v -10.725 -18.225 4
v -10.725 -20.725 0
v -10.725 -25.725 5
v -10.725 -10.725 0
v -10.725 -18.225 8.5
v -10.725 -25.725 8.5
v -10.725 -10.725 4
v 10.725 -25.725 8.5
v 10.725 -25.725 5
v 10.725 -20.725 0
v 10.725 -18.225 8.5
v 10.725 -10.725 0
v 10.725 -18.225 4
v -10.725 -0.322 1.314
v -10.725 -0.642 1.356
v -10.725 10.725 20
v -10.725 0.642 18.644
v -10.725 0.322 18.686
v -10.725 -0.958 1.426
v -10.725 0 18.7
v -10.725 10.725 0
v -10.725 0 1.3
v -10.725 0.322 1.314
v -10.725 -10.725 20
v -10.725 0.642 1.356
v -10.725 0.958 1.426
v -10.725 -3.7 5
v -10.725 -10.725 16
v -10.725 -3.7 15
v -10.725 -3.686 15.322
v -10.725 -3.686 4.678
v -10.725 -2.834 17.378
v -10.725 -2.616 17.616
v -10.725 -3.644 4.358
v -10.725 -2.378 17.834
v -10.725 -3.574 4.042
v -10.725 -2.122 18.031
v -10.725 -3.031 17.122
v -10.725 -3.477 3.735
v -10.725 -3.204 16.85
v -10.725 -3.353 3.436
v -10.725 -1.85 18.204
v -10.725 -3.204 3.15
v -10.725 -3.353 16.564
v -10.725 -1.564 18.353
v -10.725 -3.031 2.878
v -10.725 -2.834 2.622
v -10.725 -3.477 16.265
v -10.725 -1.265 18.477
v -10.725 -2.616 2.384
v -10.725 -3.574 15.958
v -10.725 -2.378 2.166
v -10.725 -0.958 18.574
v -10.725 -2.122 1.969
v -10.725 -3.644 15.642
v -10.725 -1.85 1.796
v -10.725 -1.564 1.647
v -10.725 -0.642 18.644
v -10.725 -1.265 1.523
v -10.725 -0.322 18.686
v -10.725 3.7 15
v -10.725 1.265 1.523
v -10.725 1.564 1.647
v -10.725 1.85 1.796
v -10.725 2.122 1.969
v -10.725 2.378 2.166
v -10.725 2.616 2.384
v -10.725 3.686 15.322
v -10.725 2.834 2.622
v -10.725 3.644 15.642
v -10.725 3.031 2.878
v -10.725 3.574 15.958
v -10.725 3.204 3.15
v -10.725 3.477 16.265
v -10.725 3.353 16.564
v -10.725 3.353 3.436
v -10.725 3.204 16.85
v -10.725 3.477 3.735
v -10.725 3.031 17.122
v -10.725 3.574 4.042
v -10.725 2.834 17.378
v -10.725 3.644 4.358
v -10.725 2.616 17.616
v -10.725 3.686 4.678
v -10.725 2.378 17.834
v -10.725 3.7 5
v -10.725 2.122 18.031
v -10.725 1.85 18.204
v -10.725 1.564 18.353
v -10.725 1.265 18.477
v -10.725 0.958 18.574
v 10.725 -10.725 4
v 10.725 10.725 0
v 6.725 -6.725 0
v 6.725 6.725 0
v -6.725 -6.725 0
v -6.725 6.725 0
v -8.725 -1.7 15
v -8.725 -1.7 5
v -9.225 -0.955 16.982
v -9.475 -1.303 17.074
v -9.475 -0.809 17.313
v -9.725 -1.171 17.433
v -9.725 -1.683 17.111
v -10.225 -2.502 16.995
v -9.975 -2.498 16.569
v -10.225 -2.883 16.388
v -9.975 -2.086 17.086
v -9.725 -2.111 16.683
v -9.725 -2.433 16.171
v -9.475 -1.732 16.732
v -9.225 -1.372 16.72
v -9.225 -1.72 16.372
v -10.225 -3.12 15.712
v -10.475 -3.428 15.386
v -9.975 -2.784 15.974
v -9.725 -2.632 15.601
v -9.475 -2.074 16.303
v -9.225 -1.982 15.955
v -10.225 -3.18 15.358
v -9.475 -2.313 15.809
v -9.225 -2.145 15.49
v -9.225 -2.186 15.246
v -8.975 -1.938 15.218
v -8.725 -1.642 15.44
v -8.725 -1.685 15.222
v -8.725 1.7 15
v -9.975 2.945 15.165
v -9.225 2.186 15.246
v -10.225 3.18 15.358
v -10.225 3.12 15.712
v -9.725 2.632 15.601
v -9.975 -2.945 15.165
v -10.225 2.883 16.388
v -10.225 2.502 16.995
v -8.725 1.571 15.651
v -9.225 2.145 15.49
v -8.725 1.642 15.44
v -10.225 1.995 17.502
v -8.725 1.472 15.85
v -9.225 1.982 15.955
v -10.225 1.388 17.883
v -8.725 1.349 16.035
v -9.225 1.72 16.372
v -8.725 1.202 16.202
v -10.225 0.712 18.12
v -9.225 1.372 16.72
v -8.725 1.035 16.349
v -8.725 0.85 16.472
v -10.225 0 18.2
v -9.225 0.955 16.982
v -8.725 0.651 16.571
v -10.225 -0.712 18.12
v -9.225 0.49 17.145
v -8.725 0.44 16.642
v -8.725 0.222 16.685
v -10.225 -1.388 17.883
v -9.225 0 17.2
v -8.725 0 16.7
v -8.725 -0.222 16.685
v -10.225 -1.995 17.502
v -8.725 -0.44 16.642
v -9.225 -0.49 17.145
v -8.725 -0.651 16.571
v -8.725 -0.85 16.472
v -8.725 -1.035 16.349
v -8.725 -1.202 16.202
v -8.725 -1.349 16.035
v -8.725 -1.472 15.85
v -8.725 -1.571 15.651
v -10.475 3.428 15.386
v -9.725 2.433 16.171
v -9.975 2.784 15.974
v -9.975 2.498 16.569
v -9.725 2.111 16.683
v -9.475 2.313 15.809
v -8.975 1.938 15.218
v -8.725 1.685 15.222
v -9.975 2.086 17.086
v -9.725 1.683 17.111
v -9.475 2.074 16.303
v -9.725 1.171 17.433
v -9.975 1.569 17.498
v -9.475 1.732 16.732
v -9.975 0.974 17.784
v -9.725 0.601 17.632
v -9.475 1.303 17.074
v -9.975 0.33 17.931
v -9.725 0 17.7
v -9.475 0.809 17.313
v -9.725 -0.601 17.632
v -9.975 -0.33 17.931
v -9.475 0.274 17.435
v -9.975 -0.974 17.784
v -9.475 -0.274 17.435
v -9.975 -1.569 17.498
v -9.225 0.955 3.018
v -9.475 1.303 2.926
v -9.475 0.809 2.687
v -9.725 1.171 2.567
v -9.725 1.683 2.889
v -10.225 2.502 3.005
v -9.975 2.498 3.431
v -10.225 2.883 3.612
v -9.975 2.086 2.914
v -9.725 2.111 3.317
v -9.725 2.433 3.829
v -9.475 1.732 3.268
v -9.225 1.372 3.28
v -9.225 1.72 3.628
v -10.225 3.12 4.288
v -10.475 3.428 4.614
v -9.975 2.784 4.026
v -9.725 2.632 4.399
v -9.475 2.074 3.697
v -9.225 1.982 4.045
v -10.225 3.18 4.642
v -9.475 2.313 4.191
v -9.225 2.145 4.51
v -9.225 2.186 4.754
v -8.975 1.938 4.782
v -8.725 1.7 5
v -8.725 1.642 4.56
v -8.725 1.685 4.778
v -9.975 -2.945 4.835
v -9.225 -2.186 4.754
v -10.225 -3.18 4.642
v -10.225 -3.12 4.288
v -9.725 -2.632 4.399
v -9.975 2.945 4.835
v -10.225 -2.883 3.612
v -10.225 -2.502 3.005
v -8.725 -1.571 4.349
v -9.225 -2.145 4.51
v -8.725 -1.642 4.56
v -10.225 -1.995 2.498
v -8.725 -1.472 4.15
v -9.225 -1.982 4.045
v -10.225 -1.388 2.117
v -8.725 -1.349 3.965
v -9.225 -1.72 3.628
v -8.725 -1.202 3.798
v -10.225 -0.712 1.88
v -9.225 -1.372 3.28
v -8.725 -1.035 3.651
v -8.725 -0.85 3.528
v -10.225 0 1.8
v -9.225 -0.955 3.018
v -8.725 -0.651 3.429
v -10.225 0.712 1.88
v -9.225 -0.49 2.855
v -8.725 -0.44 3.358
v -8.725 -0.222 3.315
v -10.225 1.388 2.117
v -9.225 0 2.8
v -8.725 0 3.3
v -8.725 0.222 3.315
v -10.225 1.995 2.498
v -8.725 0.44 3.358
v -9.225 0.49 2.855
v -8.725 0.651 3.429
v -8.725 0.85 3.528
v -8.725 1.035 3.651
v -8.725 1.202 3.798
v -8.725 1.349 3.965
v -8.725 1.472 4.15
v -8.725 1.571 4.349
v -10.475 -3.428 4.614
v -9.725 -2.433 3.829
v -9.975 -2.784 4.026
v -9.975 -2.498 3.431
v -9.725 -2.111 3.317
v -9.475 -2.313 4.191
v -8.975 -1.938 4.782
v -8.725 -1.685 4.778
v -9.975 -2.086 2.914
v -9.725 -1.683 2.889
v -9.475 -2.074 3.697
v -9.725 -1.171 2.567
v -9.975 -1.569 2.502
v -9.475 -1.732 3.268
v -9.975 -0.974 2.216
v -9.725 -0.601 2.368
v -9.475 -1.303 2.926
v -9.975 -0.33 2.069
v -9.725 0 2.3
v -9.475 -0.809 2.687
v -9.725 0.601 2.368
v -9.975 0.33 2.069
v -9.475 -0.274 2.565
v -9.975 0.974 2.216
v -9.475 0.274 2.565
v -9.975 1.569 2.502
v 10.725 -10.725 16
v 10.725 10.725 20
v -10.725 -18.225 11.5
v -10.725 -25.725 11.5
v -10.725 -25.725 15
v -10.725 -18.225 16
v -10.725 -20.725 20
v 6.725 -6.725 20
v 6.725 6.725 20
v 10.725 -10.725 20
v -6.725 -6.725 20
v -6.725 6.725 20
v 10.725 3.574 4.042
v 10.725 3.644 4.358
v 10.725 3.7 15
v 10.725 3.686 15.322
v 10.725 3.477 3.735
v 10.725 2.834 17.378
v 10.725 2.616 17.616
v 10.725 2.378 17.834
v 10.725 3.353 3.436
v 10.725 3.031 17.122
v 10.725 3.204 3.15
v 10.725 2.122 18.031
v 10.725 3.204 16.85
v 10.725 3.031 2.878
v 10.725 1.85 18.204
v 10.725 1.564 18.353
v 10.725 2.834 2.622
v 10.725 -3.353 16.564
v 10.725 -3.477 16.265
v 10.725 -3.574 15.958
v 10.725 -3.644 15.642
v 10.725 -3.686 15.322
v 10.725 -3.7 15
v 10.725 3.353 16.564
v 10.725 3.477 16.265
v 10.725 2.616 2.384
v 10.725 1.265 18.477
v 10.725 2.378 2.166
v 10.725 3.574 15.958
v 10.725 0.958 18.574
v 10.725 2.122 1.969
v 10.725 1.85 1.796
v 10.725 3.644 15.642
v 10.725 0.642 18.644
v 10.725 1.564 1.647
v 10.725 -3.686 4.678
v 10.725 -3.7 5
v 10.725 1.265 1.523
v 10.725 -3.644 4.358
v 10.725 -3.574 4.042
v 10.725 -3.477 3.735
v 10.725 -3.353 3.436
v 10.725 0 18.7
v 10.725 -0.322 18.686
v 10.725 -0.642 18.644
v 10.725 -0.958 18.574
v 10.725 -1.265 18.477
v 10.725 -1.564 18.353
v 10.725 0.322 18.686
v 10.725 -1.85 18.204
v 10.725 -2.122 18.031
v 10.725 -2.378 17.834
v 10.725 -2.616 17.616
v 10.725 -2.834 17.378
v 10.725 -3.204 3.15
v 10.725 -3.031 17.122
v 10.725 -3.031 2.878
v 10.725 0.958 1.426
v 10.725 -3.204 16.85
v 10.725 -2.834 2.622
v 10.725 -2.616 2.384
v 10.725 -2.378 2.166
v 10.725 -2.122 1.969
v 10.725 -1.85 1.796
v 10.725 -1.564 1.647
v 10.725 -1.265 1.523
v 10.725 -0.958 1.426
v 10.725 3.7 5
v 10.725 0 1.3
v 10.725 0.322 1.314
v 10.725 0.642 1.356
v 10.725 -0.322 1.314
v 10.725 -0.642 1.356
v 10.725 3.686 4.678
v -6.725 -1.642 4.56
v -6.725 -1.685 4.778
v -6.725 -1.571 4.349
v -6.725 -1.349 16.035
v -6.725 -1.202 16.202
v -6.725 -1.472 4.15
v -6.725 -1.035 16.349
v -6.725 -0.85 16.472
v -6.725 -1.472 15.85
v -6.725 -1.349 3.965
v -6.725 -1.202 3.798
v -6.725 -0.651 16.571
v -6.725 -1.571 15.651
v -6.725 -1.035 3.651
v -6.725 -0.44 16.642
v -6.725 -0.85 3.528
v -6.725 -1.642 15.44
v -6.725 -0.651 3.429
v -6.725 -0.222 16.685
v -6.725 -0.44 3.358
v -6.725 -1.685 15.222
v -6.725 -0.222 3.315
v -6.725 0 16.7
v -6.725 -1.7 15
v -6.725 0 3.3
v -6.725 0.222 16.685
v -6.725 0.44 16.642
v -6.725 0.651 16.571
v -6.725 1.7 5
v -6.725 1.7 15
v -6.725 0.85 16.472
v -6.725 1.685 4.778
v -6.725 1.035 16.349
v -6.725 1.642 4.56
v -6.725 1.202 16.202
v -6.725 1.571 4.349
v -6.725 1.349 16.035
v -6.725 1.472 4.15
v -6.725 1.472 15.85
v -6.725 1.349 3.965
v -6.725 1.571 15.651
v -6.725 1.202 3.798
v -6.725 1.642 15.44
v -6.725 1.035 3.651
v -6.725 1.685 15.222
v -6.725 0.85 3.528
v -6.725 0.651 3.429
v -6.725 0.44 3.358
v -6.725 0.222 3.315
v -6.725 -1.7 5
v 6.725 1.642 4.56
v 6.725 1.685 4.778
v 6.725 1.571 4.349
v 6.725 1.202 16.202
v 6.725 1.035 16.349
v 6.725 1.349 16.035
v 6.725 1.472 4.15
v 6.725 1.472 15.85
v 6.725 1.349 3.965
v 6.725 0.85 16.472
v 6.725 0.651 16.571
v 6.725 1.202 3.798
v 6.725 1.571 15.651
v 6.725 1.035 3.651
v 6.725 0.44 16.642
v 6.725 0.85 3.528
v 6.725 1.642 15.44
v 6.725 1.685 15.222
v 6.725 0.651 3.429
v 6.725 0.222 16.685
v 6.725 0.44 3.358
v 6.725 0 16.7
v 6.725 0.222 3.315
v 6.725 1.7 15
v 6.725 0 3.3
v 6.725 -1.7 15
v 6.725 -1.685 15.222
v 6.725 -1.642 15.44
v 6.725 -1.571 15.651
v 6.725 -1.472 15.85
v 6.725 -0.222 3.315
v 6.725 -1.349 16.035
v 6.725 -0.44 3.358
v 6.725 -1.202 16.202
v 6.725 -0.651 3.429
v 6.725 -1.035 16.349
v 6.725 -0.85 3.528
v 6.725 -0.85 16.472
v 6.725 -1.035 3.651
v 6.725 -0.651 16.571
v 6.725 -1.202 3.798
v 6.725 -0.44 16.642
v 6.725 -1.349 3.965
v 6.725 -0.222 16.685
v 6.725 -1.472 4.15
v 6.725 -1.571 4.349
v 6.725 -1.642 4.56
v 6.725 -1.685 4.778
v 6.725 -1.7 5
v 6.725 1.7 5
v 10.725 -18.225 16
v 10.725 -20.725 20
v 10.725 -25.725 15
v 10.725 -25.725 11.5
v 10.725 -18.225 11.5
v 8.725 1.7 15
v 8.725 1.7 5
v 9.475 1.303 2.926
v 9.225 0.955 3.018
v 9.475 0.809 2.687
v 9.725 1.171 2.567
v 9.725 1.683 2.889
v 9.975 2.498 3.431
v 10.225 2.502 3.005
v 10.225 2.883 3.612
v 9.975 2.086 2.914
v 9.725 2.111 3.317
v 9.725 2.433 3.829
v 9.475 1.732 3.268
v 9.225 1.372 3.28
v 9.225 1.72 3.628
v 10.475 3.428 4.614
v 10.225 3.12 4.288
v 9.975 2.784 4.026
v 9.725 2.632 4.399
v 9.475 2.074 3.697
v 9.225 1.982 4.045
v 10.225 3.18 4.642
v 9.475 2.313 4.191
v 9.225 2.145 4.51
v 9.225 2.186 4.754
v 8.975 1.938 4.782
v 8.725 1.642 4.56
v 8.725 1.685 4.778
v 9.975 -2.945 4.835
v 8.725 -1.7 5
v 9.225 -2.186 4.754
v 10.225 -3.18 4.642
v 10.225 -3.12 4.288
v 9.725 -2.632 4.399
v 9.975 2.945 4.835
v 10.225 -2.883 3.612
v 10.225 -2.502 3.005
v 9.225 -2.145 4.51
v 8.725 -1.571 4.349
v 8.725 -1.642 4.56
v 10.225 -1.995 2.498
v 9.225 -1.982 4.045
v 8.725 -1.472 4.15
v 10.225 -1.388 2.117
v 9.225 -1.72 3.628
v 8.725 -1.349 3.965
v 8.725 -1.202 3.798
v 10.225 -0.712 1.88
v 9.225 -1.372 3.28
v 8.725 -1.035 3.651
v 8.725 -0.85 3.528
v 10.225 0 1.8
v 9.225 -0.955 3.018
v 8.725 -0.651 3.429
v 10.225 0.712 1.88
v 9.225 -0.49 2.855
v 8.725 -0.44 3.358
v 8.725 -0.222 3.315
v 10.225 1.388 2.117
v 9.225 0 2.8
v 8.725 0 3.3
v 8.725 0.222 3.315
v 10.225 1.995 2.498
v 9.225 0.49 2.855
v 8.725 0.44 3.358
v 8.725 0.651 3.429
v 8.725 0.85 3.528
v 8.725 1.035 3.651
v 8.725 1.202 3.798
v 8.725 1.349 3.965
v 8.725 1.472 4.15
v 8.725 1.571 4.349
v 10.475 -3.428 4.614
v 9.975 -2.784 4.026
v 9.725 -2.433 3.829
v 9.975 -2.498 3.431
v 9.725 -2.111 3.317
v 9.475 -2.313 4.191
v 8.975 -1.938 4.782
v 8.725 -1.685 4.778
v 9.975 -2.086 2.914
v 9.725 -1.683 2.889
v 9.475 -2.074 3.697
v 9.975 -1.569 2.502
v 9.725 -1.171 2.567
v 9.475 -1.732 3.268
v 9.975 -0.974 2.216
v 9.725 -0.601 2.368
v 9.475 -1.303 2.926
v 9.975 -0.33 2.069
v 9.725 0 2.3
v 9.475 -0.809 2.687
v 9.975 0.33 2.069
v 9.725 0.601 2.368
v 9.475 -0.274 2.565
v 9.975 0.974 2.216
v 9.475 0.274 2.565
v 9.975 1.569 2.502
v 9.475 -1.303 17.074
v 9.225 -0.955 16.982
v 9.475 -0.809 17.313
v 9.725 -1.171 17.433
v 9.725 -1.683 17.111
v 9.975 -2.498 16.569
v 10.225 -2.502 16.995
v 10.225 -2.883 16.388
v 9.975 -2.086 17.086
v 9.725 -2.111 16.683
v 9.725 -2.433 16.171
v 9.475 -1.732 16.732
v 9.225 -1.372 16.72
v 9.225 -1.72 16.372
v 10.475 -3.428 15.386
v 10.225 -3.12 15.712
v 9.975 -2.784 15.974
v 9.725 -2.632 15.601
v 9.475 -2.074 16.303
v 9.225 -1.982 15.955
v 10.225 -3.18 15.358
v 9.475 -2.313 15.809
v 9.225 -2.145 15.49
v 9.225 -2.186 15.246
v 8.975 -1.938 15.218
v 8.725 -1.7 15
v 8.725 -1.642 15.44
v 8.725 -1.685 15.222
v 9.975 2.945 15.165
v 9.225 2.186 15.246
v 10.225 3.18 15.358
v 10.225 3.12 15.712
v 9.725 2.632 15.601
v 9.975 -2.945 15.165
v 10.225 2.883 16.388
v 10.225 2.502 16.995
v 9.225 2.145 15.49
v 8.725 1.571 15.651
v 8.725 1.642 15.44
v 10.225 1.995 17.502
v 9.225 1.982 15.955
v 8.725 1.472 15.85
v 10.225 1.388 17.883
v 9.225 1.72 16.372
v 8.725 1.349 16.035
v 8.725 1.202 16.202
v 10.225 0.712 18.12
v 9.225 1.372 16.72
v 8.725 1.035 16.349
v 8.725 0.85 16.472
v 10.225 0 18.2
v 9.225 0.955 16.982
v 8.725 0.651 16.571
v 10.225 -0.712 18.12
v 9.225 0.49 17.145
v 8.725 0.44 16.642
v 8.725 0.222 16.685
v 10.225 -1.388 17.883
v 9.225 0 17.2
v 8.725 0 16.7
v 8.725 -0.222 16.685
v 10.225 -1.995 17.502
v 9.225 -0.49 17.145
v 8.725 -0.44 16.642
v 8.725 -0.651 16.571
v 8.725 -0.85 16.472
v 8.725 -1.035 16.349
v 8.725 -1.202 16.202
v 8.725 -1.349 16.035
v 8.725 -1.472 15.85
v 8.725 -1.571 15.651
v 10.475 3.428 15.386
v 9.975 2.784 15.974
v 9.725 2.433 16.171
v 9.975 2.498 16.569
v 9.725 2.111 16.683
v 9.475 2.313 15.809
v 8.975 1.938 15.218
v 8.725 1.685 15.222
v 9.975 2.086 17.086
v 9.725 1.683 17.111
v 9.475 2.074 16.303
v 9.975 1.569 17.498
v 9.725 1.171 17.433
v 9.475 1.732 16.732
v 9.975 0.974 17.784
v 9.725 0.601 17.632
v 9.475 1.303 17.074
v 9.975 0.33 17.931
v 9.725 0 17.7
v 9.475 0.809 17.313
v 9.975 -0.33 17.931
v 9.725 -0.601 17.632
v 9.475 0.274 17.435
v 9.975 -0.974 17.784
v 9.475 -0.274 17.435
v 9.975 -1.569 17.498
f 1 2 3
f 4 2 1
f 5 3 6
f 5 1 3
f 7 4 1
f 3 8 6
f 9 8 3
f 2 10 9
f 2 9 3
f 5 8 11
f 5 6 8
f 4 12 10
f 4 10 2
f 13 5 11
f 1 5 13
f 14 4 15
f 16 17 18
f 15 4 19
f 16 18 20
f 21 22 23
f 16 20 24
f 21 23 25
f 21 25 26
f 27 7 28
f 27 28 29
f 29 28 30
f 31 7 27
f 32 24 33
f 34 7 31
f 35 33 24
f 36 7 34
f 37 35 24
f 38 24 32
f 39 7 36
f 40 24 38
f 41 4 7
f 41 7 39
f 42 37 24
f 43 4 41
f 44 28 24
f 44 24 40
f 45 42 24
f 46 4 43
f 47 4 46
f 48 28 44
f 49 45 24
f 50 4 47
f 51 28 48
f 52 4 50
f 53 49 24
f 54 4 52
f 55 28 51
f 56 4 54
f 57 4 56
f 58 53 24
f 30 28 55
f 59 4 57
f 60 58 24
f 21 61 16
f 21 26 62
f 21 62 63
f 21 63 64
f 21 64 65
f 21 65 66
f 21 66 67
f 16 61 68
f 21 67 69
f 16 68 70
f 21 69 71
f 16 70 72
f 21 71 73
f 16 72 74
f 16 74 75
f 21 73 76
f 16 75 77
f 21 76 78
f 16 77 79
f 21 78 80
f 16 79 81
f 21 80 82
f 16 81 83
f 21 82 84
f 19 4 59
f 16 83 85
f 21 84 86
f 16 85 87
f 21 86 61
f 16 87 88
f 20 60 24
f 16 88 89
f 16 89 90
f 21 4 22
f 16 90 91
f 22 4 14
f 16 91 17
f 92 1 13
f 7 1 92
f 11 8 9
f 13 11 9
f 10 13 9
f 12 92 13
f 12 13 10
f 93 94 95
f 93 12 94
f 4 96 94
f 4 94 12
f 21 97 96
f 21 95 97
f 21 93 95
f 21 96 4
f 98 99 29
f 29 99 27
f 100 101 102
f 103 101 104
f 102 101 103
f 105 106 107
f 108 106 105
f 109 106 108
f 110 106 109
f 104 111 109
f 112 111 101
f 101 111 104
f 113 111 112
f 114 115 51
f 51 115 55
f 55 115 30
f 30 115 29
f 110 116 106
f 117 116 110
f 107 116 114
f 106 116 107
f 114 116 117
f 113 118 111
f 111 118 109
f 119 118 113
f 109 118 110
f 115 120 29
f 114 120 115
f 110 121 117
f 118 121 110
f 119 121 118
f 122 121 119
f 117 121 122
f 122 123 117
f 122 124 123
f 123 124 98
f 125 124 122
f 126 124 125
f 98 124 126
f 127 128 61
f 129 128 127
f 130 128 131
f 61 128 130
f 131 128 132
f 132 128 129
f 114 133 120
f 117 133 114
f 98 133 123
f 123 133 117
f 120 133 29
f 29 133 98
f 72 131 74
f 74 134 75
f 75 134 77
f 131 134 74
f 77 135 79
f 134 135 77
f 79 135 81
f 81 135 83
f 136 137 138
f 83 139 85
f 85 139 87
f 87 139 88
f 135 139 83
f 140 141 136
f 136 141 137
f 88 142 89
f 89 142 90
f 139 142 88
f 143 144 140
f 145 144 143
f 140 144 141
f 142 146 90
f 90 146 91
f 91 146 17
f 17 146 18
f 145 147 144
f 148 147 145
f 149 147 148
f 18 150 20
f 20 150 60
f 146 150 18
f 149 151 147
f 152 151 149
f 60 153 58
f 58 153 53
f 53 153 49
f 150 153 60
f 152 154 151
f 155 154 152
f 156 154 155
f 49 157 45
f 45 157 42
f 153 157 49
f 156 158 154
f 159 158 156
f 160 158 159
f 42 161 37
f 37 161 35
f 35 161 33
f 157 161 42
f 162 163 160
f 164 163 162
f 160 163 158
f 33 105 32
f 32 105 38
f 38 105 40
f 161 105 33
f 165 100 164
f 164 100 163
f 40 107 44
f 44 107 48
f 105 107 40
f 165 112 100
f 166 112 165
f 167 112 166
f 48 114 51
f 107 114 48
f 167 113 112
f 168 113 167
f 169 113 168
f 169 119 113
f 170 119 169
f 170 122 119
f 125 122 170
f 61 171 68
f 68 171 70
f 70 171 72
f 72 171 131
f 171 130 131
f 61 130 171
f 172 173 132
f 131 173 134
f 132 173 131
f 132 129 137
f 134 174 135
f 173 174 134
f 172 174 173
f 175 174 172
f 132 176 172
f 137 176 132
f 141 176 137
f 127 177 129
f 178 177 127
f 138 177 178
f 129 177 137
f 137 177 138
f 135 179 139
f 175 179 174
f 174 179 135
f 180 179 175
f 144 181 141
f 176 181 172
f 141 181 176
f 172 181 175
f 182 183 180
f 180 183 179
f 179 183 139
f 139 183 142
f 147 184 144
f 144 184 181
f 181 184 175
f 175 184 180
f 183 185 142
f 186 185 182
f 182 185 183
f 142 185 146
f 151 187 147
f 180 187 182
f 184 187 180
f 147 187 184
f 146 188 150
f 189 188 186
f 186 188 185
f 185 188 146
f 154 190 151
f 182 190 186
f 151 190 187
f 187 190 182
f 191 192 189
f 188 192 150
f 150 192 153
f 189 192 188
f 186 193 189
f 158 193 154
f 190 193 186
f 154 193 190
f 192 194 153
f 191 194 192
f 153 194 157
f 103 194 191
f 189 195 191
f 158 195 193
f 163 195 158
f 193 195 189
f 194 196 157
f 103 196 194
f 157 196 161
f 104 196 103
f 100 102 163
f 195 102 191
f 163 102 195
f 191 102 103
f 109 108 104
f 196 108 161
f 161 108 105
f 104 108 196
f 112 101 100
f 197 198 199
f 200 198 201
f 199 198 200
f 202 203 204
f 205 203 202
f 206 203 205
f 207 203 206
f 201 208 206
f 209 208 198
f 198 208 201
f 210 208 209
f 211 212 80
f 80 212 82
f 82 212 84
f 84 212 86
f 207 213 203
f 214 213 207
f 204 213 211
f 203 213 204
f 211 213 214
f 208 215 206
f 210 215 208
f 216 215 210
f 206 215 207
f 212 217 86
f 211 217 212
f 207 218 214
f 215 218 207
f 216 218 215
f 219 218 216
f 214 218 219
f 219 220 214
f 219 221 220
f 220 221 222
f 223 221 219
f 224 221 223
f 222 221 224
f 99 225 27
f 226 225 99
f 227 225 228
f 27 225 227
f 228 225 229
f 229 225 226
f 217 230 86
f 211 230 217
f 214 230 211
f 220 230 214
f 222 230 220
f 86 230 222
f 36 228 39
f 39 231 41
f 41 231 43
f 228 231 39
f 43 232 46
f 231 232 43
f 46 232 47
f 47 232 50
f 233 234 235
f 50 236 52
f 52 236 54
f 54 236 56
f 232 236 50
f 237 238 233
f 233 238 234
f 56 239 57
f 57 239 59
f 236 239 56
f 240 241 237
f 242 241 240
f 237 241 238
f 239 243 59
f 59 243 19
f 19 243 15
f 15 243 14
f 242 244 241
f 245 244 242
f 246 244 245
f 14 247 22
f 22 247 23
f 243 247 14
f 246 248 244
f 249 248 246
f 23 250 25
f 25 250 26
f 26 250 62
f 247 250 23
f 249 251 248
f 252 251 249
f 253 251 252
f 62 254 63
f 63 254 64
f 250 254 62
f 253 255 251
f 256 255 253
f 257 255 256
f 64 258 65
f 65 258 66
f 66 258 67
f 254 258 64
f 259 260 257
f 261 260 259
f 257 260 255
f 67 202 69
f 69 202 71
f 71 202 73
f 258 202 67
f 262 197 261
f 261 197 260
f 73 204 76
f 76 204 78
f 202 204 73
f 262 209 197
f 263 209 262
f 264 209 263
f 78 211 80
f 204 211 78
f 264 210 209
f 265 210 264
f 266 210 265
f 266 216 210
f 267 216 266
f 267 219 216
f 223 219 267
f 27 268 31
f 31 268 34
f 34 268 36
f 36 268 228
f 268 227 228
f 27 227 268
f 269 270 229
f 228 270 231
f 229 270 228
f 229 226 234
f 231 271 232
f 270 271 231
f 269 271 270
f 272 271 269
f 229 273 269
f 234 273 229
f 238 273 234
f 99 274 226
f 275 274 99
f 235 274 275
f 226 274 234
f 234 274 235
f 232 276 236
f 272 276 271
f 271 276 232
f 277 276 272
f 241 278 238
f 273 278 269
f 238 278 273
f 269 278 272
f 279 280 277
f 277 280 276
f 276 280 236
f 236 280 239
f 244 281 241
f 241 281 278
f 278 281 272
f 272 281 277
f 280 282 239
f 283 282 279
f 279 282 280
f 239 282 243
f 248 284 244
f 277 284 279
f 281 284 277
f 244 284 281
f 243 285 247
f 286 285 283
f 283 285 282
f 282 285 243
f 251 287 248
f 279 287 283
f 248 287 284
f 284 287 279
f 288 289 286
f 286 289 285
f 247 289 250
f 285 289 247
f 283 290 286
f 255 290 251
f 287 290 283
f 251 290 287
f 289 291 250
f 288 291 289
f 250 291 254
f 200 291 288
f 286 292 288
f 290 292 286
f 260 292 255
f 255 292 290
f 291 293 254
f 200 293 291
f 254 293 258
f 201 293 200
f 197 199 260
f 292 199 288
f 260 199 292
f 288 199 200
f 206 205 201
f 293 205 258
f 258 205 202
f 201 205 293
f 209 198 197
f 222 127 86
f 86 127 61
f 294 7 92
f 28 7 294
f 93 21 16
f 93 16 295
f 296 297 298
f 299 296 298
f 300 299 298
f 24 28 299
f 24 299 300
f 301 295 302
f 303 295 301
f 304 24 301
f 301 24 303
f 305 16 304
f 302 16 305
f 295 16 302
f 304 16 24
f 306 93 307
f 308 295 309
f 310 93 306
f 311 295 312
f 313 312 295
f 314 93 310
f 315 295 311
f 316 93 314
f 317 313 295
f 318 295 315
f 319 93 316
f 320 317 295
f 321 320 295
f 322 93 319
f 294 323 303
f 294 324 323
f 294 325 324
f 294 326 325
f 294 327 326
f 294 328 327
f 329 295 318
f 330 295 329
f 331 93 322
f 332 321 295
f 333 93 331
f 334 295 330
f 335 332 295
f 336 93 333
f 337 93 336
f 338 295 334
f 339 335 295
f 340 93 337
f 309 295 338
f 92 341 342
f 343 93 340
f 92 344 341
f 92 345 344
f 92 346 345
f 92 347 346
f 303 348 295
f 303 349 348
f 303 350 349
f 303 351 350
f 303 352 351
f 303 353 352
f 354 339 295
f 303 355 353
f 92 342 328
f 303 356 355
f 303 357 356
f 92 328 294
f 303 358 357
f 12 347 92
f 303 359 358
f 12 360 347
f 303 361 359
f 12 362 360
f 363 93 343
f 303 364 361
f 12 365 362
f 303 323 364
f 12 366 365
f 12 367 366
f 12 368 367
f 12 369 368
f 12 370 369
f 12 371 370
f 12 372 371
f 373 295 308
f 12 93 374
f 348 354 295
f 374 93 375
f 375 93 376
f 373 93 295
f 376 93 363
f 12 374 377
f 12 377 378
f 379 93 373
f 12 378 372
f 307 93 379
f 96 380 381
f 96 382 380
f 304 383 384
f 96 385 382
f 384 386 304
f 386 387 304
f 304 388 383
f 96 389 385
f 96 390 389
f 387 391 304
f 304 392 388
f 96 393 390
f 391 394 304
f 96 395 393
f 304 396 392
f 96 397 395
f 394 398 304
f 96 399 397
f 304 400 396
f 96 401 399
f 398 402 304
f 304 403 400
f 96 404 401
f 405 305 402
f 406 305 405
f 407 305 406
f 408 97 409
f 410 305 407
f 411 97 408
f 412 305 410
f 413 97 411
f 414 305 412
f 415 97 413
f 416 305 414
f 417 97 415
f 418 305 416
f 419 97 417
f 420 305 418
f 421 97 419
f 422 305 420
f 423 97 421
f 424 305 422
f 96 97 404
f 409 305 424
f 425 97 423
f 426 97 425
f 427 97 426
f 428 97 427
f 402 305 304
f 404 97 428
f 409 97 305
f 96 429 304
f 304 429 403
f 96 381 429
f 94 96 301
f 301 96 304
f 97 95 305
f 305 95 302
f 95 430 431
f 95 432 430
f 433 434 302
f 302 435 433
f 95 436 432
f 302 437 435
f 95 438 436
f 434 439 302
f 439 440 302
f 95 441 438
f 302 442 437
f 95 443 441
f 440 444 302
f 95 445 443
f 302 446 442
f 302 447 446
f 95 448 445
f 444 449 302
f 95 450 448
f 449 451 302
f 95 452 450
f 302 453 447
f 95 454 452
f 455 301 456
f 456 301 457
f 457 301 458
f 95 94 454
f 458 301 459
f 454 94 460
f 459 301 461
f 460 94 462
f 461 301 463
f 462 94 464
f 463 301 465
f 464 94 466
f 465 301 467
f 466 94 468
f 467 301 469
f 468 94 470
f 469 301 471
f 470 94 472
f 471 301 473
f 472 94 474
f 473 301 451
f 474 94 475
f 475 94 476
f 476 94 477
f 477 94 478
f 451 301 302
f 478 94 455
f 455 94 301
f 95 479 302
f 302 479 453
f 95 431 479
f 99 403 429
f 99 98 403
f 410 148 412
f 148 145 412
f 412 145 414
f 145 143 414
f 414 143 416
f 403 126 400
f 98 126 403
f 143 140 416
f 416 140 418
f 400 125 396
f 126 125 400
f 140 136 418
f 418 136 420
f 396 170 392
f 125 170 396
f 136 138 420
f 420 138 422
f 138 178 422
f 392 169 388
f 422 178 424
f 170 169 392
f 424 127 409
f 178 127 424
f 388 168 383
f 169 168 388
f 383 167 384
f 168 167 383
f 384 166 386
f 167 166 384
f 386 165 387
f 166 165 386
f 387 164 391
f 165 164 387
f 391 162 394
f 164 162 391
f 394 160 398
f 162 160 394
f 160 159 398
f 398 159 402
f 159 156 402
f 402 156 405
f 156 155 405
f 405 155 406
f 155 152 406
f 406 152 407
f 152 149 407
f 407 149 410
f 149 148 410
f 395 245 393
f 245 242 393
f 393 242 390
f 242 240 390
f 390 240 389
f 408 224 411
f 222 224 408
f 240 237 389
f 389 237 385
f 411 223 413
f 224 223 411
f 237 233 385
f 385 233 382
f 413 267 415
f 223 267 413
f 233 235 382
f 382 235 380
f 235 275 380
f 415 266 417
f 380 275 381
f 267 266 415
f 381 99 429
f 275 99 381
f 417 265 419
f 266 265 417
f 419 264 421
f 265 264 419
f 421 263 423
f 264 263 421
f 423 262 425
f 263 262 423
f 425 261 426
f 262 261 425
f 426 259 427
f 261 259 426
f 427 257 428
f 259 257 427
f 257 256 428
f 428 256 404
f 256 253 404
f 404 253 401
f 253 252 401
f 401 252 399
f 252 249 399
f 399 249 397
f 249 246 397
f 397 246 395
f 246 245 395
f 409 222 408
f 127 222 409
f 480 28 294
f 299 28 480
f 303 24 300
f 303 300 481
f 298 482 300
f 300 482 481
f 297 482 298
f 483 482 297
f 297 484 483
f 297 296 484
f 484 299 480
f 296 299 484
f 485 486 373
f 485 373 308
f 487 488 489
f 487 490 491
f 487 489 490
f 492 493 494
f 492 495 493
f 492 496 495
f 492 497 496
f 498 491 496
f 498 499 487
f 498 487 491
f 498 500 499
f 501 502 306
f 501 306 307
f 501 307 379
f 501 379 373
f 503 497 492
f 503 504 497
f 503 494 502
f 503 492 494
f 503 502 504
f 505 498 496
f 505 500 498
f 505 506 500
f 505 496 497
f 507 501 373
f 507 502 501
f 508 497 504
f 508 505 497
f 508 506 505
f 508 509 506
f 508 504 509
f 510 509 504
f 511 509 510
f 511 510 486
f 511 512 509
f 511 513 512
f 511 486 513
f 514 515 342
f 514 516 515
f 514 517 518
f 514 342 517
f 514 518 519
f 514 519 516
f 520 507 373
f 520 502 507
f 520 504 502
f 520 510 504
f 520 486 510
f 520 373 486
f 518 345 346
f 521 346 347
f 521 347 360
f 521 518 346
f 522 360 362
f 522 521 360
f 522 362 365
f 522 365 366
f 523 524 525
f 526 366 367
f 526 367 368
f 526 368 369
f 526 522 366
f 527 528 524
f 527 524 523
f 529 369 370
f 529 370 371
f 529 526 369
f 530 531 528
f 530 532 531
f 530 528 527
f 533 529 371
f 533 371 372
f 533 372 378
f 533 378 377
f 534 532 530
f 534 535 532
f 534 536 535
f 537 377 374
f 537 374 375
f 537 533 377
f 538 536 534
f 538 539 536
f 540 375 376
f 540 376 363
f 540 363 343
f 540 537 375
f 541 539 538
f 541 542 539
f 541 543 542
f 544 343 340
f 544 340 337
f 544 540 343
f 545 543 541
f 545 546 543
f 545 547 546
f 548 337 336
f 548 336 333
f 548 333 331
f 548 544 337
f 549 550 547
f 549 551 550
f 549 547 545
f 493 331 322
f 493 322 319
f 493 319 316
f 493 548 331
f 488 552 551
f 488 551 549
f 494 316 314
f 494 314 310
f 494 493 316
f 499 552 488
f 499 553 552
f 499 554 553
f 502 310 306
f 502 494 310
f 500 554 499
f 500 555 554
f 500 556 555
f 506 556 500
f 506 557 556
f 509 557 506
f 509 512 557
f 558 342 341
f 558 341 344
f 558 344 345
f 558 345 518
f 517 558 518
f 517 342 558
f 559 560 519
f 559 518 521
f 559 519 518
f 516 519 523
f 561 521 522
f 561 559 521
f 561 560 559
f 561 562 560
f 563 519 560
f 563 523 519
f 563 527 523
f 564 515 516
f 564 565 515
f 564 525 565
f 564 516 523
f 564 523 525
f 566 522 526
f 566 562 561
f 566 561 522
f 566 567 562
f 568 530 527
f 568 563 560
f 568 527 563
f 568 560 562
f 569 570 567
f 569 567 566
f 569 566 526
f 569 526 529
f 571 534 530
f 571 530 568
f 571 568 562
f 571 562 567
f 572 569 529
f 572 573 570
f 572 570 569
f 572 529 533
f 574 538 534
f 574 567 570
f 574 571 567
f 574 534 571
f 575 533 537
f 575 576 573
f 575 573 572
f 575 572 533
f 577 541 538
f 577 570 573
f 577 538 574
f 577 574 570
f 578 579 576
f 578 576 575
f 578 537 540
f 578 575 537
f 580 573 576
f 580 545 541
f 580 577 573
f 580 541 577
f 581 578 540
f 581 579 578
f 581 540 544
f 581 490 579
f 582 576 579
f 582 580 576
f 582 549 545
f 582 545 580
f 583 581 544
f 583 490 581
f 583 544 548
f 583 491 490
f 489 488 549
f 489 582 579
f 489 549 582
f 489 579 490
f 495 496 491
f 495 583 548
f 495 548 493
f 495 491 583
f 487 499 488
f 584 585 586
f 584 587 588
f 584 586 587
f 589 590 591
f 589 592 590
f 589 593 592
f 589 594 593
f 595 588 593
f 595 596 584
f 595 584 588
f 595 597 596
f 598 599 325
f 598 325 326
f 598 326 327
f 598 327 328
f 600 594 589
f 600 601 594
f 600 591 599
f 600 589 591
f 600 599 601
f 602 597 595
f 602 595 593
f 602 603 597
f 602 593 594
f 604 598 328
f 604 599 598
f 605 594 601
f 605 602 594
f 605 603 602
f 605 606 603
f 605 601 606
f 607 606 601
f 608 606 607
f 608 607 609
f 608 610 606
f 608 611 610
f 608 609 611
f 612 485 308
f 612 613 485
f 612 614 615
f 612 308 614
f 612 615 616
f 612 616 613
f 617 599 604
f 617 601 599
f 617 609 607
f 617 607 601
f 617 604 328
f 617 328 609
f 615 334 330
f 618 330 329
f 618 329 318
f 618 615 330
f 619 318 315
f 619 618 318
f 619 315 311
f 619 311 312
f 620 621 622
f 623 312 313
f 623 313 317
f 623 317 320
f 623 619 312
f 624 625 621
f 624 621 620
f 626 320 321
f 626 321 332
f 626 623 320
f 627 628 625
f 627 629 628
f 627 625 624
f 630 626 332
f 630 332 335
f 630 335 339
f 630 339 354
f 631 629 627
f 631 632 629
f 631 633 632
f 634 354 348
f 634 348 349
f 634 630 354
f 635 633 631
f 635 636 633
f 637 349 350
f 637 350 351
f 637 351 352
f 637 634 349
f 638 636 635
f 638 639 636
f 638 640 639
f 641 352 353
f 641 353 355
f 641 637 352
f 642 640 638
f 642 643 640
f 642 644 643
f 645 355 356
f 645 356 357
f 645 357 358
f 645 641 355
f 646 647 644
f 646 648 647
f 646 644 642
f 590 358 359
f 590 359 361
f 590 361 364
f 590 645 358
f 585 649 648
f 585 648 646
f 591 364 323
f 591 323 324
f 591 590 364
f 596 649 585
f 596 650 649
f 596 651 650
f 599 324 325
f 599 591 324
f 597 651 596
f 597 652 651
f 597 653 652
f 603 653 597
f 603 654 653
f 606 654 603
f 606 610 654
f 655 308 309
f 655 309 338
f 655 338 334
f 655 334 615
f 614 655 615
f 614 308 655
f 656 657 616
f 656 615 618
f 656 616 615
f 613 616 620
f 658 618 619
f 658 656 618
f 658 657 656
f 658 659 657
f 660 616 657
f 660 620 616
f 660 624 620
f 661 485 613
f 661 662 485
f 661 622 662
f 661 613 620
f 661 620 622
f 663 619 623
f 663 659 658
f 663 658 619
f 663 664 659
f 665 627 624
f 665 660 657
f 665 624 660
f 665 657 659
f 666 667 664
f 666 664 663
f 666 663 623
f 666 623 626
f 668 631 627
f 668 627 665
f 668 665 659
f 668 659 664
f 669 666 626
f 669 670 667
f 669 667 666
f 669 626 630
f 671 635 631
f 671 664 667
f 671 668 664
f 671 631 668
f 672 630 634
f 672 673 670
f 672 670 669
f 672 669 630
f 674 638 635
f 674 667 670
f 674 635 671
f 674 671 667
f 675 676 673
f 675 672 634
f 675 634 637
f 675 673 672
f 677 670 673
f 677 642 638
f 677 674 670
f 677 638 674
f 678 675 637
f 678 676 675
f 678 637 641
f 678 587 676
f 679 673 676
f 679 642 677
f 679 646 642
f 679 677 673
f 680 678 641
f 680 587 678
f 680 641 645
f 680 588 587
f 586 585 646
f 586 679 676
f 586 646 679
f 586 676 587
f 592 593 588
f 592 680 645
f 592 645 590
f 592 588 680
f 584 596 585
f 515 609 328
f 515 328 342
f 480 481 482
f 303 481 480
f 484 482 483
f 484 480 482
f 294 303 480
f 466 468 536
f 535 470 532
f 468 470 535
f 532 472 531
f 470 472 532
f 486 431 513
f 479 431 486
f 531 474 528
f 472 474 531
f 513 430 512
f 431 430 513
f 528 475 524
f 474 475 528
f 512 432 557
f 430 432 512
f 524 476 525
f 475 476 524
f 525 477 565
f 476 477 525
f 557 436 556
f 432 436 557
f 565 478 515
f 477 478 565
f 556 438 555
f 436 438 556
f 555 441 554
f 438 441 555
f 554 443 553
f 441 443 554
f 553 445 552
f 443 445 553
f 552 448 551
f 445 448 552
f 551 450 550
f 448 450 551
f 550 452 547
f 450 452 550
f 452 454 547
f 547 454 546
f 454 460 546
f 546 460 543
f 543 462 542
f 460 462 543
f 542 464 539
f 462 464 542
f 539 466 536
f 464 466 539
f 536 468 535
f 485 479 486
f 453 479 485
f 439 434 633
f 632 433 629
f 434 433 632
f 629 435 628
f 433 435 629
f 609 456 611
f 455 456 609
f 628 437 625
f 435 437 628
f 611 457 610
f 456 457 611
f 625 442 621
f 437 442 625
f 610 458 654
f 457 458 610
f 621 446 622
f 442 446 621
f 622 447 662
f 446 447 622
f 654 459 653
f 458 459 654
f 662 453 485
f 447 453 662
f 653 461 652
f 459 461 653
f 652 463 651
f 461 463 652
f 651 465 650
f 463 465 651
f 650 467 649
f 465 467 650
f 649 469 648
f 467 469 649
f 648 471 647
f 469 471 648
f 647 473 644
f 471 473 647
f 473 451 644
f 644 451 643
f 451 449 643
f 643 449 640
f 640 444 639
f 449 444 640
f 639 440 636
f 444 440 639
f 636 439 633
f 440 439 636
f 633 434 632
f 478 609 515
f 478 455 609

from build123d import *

# Parameters (mm, degrees)
SKETCH_W        = 21.45
SKETCH_H        = 21.45
SKETCH_W_2      = 13.45
SKETCH_H_2      = 13.45
PAD_DEPTH       = 20
SKETCH001_W     = 21.45
SKETCH001_H     = 20
PAD001_DEPTH    = 15
POCKET_DEPTH    = 21.451
POCKET001_DEPTH = 21.451
CHAMFER_SIZE    = 2
CHAMFER001_SIZE = 5


with BuildPart() as part:
    # Sketch → Pad (new body)
    with BuildSketch(Plane.XY):
        Rectangle(SKETCH_W, SKETCH_H)
        Rectangle(SKETCH_W_2, SKETCH_H_2, mode=Mode.SUBTRACT)
    extrude(amount=PAD_DEPTH)

    # Sketch001 (on Face3 of Pad) → Pad001 (join)
    with BuildSketch(Plane.XZ.offset(10.725)):
        with Locations((0, 10)):
            Rectangle(SKETCH001_W, SKETCH001_H)
    extrude(amount=PAD001_DEPTH)

    # Sketch002 (on Face6 of Pad001) → Pocket (cut, through all)
    with BuildSketch(Plane(origin=(-10.725, 0, 0), x_dir=(0, -1, 0), z_dir=(-1, 0, 0))):
        Polygon((18.225, 11.5), (25.725, 11.5), (25.725, 8.5), (18.225, 8.5), (18.225, 4), (10.725, 4), (10.725, 16), (18.225, 16), align=None)
    extrude(amount=-POCKET_DEPTH, mode=Mode.SUBTRACT)

    # Sketch003 (on Face2 of Pocket) → Pocket001 (cut, through all)
    with BuildSketch(Plane(origin=(-10.725, 0, 0), x_dir=(0, -1, 0), z_dir=(-1, 0, 0))):
        with BuildLine():
            ThreePointArc((1.7, 15), (0, 16.7), (-1.7, 15))
            Line((-1.7, 15), (-1.7, 5))
            ThreePointArc((-1.7, 5), (0, 3.3), (1.7, 5))
            Line((1.7, 15), (1.7, 5))
        make_face()
    extrude(amount=-POCKET001_DEPTH, mode=Mode.SUBTRACT)

    # Chamfer
    chamfer_edges = [part.edges().sort_by_distance(p)[0] for p in [
        (-10.725, -1.7, 10),
        (-10.725, 1.7, 10),
        (-10.725, 0, 3.3),
        (-10.725, 0, 16.7),
        (10.725, 1.7, 10),
        (10.725, -1.7, 10),
        (10.725, 0, 3.3),
        (10.725, 0, 16.7),
    ]]
    chamfer(chamfer_edges, length=CHAMFER_SIZE)

    # Chamfer001
    chamfer001_edges = [part.edges().sort_by_distance(p)[0] for p in [
        (0, -25.725, 0),
        (0, -25.725, 20),
    ]]
    chamfer(chamfer001_edges, length=CHAMFER001_SIZE)


solid = part.part
